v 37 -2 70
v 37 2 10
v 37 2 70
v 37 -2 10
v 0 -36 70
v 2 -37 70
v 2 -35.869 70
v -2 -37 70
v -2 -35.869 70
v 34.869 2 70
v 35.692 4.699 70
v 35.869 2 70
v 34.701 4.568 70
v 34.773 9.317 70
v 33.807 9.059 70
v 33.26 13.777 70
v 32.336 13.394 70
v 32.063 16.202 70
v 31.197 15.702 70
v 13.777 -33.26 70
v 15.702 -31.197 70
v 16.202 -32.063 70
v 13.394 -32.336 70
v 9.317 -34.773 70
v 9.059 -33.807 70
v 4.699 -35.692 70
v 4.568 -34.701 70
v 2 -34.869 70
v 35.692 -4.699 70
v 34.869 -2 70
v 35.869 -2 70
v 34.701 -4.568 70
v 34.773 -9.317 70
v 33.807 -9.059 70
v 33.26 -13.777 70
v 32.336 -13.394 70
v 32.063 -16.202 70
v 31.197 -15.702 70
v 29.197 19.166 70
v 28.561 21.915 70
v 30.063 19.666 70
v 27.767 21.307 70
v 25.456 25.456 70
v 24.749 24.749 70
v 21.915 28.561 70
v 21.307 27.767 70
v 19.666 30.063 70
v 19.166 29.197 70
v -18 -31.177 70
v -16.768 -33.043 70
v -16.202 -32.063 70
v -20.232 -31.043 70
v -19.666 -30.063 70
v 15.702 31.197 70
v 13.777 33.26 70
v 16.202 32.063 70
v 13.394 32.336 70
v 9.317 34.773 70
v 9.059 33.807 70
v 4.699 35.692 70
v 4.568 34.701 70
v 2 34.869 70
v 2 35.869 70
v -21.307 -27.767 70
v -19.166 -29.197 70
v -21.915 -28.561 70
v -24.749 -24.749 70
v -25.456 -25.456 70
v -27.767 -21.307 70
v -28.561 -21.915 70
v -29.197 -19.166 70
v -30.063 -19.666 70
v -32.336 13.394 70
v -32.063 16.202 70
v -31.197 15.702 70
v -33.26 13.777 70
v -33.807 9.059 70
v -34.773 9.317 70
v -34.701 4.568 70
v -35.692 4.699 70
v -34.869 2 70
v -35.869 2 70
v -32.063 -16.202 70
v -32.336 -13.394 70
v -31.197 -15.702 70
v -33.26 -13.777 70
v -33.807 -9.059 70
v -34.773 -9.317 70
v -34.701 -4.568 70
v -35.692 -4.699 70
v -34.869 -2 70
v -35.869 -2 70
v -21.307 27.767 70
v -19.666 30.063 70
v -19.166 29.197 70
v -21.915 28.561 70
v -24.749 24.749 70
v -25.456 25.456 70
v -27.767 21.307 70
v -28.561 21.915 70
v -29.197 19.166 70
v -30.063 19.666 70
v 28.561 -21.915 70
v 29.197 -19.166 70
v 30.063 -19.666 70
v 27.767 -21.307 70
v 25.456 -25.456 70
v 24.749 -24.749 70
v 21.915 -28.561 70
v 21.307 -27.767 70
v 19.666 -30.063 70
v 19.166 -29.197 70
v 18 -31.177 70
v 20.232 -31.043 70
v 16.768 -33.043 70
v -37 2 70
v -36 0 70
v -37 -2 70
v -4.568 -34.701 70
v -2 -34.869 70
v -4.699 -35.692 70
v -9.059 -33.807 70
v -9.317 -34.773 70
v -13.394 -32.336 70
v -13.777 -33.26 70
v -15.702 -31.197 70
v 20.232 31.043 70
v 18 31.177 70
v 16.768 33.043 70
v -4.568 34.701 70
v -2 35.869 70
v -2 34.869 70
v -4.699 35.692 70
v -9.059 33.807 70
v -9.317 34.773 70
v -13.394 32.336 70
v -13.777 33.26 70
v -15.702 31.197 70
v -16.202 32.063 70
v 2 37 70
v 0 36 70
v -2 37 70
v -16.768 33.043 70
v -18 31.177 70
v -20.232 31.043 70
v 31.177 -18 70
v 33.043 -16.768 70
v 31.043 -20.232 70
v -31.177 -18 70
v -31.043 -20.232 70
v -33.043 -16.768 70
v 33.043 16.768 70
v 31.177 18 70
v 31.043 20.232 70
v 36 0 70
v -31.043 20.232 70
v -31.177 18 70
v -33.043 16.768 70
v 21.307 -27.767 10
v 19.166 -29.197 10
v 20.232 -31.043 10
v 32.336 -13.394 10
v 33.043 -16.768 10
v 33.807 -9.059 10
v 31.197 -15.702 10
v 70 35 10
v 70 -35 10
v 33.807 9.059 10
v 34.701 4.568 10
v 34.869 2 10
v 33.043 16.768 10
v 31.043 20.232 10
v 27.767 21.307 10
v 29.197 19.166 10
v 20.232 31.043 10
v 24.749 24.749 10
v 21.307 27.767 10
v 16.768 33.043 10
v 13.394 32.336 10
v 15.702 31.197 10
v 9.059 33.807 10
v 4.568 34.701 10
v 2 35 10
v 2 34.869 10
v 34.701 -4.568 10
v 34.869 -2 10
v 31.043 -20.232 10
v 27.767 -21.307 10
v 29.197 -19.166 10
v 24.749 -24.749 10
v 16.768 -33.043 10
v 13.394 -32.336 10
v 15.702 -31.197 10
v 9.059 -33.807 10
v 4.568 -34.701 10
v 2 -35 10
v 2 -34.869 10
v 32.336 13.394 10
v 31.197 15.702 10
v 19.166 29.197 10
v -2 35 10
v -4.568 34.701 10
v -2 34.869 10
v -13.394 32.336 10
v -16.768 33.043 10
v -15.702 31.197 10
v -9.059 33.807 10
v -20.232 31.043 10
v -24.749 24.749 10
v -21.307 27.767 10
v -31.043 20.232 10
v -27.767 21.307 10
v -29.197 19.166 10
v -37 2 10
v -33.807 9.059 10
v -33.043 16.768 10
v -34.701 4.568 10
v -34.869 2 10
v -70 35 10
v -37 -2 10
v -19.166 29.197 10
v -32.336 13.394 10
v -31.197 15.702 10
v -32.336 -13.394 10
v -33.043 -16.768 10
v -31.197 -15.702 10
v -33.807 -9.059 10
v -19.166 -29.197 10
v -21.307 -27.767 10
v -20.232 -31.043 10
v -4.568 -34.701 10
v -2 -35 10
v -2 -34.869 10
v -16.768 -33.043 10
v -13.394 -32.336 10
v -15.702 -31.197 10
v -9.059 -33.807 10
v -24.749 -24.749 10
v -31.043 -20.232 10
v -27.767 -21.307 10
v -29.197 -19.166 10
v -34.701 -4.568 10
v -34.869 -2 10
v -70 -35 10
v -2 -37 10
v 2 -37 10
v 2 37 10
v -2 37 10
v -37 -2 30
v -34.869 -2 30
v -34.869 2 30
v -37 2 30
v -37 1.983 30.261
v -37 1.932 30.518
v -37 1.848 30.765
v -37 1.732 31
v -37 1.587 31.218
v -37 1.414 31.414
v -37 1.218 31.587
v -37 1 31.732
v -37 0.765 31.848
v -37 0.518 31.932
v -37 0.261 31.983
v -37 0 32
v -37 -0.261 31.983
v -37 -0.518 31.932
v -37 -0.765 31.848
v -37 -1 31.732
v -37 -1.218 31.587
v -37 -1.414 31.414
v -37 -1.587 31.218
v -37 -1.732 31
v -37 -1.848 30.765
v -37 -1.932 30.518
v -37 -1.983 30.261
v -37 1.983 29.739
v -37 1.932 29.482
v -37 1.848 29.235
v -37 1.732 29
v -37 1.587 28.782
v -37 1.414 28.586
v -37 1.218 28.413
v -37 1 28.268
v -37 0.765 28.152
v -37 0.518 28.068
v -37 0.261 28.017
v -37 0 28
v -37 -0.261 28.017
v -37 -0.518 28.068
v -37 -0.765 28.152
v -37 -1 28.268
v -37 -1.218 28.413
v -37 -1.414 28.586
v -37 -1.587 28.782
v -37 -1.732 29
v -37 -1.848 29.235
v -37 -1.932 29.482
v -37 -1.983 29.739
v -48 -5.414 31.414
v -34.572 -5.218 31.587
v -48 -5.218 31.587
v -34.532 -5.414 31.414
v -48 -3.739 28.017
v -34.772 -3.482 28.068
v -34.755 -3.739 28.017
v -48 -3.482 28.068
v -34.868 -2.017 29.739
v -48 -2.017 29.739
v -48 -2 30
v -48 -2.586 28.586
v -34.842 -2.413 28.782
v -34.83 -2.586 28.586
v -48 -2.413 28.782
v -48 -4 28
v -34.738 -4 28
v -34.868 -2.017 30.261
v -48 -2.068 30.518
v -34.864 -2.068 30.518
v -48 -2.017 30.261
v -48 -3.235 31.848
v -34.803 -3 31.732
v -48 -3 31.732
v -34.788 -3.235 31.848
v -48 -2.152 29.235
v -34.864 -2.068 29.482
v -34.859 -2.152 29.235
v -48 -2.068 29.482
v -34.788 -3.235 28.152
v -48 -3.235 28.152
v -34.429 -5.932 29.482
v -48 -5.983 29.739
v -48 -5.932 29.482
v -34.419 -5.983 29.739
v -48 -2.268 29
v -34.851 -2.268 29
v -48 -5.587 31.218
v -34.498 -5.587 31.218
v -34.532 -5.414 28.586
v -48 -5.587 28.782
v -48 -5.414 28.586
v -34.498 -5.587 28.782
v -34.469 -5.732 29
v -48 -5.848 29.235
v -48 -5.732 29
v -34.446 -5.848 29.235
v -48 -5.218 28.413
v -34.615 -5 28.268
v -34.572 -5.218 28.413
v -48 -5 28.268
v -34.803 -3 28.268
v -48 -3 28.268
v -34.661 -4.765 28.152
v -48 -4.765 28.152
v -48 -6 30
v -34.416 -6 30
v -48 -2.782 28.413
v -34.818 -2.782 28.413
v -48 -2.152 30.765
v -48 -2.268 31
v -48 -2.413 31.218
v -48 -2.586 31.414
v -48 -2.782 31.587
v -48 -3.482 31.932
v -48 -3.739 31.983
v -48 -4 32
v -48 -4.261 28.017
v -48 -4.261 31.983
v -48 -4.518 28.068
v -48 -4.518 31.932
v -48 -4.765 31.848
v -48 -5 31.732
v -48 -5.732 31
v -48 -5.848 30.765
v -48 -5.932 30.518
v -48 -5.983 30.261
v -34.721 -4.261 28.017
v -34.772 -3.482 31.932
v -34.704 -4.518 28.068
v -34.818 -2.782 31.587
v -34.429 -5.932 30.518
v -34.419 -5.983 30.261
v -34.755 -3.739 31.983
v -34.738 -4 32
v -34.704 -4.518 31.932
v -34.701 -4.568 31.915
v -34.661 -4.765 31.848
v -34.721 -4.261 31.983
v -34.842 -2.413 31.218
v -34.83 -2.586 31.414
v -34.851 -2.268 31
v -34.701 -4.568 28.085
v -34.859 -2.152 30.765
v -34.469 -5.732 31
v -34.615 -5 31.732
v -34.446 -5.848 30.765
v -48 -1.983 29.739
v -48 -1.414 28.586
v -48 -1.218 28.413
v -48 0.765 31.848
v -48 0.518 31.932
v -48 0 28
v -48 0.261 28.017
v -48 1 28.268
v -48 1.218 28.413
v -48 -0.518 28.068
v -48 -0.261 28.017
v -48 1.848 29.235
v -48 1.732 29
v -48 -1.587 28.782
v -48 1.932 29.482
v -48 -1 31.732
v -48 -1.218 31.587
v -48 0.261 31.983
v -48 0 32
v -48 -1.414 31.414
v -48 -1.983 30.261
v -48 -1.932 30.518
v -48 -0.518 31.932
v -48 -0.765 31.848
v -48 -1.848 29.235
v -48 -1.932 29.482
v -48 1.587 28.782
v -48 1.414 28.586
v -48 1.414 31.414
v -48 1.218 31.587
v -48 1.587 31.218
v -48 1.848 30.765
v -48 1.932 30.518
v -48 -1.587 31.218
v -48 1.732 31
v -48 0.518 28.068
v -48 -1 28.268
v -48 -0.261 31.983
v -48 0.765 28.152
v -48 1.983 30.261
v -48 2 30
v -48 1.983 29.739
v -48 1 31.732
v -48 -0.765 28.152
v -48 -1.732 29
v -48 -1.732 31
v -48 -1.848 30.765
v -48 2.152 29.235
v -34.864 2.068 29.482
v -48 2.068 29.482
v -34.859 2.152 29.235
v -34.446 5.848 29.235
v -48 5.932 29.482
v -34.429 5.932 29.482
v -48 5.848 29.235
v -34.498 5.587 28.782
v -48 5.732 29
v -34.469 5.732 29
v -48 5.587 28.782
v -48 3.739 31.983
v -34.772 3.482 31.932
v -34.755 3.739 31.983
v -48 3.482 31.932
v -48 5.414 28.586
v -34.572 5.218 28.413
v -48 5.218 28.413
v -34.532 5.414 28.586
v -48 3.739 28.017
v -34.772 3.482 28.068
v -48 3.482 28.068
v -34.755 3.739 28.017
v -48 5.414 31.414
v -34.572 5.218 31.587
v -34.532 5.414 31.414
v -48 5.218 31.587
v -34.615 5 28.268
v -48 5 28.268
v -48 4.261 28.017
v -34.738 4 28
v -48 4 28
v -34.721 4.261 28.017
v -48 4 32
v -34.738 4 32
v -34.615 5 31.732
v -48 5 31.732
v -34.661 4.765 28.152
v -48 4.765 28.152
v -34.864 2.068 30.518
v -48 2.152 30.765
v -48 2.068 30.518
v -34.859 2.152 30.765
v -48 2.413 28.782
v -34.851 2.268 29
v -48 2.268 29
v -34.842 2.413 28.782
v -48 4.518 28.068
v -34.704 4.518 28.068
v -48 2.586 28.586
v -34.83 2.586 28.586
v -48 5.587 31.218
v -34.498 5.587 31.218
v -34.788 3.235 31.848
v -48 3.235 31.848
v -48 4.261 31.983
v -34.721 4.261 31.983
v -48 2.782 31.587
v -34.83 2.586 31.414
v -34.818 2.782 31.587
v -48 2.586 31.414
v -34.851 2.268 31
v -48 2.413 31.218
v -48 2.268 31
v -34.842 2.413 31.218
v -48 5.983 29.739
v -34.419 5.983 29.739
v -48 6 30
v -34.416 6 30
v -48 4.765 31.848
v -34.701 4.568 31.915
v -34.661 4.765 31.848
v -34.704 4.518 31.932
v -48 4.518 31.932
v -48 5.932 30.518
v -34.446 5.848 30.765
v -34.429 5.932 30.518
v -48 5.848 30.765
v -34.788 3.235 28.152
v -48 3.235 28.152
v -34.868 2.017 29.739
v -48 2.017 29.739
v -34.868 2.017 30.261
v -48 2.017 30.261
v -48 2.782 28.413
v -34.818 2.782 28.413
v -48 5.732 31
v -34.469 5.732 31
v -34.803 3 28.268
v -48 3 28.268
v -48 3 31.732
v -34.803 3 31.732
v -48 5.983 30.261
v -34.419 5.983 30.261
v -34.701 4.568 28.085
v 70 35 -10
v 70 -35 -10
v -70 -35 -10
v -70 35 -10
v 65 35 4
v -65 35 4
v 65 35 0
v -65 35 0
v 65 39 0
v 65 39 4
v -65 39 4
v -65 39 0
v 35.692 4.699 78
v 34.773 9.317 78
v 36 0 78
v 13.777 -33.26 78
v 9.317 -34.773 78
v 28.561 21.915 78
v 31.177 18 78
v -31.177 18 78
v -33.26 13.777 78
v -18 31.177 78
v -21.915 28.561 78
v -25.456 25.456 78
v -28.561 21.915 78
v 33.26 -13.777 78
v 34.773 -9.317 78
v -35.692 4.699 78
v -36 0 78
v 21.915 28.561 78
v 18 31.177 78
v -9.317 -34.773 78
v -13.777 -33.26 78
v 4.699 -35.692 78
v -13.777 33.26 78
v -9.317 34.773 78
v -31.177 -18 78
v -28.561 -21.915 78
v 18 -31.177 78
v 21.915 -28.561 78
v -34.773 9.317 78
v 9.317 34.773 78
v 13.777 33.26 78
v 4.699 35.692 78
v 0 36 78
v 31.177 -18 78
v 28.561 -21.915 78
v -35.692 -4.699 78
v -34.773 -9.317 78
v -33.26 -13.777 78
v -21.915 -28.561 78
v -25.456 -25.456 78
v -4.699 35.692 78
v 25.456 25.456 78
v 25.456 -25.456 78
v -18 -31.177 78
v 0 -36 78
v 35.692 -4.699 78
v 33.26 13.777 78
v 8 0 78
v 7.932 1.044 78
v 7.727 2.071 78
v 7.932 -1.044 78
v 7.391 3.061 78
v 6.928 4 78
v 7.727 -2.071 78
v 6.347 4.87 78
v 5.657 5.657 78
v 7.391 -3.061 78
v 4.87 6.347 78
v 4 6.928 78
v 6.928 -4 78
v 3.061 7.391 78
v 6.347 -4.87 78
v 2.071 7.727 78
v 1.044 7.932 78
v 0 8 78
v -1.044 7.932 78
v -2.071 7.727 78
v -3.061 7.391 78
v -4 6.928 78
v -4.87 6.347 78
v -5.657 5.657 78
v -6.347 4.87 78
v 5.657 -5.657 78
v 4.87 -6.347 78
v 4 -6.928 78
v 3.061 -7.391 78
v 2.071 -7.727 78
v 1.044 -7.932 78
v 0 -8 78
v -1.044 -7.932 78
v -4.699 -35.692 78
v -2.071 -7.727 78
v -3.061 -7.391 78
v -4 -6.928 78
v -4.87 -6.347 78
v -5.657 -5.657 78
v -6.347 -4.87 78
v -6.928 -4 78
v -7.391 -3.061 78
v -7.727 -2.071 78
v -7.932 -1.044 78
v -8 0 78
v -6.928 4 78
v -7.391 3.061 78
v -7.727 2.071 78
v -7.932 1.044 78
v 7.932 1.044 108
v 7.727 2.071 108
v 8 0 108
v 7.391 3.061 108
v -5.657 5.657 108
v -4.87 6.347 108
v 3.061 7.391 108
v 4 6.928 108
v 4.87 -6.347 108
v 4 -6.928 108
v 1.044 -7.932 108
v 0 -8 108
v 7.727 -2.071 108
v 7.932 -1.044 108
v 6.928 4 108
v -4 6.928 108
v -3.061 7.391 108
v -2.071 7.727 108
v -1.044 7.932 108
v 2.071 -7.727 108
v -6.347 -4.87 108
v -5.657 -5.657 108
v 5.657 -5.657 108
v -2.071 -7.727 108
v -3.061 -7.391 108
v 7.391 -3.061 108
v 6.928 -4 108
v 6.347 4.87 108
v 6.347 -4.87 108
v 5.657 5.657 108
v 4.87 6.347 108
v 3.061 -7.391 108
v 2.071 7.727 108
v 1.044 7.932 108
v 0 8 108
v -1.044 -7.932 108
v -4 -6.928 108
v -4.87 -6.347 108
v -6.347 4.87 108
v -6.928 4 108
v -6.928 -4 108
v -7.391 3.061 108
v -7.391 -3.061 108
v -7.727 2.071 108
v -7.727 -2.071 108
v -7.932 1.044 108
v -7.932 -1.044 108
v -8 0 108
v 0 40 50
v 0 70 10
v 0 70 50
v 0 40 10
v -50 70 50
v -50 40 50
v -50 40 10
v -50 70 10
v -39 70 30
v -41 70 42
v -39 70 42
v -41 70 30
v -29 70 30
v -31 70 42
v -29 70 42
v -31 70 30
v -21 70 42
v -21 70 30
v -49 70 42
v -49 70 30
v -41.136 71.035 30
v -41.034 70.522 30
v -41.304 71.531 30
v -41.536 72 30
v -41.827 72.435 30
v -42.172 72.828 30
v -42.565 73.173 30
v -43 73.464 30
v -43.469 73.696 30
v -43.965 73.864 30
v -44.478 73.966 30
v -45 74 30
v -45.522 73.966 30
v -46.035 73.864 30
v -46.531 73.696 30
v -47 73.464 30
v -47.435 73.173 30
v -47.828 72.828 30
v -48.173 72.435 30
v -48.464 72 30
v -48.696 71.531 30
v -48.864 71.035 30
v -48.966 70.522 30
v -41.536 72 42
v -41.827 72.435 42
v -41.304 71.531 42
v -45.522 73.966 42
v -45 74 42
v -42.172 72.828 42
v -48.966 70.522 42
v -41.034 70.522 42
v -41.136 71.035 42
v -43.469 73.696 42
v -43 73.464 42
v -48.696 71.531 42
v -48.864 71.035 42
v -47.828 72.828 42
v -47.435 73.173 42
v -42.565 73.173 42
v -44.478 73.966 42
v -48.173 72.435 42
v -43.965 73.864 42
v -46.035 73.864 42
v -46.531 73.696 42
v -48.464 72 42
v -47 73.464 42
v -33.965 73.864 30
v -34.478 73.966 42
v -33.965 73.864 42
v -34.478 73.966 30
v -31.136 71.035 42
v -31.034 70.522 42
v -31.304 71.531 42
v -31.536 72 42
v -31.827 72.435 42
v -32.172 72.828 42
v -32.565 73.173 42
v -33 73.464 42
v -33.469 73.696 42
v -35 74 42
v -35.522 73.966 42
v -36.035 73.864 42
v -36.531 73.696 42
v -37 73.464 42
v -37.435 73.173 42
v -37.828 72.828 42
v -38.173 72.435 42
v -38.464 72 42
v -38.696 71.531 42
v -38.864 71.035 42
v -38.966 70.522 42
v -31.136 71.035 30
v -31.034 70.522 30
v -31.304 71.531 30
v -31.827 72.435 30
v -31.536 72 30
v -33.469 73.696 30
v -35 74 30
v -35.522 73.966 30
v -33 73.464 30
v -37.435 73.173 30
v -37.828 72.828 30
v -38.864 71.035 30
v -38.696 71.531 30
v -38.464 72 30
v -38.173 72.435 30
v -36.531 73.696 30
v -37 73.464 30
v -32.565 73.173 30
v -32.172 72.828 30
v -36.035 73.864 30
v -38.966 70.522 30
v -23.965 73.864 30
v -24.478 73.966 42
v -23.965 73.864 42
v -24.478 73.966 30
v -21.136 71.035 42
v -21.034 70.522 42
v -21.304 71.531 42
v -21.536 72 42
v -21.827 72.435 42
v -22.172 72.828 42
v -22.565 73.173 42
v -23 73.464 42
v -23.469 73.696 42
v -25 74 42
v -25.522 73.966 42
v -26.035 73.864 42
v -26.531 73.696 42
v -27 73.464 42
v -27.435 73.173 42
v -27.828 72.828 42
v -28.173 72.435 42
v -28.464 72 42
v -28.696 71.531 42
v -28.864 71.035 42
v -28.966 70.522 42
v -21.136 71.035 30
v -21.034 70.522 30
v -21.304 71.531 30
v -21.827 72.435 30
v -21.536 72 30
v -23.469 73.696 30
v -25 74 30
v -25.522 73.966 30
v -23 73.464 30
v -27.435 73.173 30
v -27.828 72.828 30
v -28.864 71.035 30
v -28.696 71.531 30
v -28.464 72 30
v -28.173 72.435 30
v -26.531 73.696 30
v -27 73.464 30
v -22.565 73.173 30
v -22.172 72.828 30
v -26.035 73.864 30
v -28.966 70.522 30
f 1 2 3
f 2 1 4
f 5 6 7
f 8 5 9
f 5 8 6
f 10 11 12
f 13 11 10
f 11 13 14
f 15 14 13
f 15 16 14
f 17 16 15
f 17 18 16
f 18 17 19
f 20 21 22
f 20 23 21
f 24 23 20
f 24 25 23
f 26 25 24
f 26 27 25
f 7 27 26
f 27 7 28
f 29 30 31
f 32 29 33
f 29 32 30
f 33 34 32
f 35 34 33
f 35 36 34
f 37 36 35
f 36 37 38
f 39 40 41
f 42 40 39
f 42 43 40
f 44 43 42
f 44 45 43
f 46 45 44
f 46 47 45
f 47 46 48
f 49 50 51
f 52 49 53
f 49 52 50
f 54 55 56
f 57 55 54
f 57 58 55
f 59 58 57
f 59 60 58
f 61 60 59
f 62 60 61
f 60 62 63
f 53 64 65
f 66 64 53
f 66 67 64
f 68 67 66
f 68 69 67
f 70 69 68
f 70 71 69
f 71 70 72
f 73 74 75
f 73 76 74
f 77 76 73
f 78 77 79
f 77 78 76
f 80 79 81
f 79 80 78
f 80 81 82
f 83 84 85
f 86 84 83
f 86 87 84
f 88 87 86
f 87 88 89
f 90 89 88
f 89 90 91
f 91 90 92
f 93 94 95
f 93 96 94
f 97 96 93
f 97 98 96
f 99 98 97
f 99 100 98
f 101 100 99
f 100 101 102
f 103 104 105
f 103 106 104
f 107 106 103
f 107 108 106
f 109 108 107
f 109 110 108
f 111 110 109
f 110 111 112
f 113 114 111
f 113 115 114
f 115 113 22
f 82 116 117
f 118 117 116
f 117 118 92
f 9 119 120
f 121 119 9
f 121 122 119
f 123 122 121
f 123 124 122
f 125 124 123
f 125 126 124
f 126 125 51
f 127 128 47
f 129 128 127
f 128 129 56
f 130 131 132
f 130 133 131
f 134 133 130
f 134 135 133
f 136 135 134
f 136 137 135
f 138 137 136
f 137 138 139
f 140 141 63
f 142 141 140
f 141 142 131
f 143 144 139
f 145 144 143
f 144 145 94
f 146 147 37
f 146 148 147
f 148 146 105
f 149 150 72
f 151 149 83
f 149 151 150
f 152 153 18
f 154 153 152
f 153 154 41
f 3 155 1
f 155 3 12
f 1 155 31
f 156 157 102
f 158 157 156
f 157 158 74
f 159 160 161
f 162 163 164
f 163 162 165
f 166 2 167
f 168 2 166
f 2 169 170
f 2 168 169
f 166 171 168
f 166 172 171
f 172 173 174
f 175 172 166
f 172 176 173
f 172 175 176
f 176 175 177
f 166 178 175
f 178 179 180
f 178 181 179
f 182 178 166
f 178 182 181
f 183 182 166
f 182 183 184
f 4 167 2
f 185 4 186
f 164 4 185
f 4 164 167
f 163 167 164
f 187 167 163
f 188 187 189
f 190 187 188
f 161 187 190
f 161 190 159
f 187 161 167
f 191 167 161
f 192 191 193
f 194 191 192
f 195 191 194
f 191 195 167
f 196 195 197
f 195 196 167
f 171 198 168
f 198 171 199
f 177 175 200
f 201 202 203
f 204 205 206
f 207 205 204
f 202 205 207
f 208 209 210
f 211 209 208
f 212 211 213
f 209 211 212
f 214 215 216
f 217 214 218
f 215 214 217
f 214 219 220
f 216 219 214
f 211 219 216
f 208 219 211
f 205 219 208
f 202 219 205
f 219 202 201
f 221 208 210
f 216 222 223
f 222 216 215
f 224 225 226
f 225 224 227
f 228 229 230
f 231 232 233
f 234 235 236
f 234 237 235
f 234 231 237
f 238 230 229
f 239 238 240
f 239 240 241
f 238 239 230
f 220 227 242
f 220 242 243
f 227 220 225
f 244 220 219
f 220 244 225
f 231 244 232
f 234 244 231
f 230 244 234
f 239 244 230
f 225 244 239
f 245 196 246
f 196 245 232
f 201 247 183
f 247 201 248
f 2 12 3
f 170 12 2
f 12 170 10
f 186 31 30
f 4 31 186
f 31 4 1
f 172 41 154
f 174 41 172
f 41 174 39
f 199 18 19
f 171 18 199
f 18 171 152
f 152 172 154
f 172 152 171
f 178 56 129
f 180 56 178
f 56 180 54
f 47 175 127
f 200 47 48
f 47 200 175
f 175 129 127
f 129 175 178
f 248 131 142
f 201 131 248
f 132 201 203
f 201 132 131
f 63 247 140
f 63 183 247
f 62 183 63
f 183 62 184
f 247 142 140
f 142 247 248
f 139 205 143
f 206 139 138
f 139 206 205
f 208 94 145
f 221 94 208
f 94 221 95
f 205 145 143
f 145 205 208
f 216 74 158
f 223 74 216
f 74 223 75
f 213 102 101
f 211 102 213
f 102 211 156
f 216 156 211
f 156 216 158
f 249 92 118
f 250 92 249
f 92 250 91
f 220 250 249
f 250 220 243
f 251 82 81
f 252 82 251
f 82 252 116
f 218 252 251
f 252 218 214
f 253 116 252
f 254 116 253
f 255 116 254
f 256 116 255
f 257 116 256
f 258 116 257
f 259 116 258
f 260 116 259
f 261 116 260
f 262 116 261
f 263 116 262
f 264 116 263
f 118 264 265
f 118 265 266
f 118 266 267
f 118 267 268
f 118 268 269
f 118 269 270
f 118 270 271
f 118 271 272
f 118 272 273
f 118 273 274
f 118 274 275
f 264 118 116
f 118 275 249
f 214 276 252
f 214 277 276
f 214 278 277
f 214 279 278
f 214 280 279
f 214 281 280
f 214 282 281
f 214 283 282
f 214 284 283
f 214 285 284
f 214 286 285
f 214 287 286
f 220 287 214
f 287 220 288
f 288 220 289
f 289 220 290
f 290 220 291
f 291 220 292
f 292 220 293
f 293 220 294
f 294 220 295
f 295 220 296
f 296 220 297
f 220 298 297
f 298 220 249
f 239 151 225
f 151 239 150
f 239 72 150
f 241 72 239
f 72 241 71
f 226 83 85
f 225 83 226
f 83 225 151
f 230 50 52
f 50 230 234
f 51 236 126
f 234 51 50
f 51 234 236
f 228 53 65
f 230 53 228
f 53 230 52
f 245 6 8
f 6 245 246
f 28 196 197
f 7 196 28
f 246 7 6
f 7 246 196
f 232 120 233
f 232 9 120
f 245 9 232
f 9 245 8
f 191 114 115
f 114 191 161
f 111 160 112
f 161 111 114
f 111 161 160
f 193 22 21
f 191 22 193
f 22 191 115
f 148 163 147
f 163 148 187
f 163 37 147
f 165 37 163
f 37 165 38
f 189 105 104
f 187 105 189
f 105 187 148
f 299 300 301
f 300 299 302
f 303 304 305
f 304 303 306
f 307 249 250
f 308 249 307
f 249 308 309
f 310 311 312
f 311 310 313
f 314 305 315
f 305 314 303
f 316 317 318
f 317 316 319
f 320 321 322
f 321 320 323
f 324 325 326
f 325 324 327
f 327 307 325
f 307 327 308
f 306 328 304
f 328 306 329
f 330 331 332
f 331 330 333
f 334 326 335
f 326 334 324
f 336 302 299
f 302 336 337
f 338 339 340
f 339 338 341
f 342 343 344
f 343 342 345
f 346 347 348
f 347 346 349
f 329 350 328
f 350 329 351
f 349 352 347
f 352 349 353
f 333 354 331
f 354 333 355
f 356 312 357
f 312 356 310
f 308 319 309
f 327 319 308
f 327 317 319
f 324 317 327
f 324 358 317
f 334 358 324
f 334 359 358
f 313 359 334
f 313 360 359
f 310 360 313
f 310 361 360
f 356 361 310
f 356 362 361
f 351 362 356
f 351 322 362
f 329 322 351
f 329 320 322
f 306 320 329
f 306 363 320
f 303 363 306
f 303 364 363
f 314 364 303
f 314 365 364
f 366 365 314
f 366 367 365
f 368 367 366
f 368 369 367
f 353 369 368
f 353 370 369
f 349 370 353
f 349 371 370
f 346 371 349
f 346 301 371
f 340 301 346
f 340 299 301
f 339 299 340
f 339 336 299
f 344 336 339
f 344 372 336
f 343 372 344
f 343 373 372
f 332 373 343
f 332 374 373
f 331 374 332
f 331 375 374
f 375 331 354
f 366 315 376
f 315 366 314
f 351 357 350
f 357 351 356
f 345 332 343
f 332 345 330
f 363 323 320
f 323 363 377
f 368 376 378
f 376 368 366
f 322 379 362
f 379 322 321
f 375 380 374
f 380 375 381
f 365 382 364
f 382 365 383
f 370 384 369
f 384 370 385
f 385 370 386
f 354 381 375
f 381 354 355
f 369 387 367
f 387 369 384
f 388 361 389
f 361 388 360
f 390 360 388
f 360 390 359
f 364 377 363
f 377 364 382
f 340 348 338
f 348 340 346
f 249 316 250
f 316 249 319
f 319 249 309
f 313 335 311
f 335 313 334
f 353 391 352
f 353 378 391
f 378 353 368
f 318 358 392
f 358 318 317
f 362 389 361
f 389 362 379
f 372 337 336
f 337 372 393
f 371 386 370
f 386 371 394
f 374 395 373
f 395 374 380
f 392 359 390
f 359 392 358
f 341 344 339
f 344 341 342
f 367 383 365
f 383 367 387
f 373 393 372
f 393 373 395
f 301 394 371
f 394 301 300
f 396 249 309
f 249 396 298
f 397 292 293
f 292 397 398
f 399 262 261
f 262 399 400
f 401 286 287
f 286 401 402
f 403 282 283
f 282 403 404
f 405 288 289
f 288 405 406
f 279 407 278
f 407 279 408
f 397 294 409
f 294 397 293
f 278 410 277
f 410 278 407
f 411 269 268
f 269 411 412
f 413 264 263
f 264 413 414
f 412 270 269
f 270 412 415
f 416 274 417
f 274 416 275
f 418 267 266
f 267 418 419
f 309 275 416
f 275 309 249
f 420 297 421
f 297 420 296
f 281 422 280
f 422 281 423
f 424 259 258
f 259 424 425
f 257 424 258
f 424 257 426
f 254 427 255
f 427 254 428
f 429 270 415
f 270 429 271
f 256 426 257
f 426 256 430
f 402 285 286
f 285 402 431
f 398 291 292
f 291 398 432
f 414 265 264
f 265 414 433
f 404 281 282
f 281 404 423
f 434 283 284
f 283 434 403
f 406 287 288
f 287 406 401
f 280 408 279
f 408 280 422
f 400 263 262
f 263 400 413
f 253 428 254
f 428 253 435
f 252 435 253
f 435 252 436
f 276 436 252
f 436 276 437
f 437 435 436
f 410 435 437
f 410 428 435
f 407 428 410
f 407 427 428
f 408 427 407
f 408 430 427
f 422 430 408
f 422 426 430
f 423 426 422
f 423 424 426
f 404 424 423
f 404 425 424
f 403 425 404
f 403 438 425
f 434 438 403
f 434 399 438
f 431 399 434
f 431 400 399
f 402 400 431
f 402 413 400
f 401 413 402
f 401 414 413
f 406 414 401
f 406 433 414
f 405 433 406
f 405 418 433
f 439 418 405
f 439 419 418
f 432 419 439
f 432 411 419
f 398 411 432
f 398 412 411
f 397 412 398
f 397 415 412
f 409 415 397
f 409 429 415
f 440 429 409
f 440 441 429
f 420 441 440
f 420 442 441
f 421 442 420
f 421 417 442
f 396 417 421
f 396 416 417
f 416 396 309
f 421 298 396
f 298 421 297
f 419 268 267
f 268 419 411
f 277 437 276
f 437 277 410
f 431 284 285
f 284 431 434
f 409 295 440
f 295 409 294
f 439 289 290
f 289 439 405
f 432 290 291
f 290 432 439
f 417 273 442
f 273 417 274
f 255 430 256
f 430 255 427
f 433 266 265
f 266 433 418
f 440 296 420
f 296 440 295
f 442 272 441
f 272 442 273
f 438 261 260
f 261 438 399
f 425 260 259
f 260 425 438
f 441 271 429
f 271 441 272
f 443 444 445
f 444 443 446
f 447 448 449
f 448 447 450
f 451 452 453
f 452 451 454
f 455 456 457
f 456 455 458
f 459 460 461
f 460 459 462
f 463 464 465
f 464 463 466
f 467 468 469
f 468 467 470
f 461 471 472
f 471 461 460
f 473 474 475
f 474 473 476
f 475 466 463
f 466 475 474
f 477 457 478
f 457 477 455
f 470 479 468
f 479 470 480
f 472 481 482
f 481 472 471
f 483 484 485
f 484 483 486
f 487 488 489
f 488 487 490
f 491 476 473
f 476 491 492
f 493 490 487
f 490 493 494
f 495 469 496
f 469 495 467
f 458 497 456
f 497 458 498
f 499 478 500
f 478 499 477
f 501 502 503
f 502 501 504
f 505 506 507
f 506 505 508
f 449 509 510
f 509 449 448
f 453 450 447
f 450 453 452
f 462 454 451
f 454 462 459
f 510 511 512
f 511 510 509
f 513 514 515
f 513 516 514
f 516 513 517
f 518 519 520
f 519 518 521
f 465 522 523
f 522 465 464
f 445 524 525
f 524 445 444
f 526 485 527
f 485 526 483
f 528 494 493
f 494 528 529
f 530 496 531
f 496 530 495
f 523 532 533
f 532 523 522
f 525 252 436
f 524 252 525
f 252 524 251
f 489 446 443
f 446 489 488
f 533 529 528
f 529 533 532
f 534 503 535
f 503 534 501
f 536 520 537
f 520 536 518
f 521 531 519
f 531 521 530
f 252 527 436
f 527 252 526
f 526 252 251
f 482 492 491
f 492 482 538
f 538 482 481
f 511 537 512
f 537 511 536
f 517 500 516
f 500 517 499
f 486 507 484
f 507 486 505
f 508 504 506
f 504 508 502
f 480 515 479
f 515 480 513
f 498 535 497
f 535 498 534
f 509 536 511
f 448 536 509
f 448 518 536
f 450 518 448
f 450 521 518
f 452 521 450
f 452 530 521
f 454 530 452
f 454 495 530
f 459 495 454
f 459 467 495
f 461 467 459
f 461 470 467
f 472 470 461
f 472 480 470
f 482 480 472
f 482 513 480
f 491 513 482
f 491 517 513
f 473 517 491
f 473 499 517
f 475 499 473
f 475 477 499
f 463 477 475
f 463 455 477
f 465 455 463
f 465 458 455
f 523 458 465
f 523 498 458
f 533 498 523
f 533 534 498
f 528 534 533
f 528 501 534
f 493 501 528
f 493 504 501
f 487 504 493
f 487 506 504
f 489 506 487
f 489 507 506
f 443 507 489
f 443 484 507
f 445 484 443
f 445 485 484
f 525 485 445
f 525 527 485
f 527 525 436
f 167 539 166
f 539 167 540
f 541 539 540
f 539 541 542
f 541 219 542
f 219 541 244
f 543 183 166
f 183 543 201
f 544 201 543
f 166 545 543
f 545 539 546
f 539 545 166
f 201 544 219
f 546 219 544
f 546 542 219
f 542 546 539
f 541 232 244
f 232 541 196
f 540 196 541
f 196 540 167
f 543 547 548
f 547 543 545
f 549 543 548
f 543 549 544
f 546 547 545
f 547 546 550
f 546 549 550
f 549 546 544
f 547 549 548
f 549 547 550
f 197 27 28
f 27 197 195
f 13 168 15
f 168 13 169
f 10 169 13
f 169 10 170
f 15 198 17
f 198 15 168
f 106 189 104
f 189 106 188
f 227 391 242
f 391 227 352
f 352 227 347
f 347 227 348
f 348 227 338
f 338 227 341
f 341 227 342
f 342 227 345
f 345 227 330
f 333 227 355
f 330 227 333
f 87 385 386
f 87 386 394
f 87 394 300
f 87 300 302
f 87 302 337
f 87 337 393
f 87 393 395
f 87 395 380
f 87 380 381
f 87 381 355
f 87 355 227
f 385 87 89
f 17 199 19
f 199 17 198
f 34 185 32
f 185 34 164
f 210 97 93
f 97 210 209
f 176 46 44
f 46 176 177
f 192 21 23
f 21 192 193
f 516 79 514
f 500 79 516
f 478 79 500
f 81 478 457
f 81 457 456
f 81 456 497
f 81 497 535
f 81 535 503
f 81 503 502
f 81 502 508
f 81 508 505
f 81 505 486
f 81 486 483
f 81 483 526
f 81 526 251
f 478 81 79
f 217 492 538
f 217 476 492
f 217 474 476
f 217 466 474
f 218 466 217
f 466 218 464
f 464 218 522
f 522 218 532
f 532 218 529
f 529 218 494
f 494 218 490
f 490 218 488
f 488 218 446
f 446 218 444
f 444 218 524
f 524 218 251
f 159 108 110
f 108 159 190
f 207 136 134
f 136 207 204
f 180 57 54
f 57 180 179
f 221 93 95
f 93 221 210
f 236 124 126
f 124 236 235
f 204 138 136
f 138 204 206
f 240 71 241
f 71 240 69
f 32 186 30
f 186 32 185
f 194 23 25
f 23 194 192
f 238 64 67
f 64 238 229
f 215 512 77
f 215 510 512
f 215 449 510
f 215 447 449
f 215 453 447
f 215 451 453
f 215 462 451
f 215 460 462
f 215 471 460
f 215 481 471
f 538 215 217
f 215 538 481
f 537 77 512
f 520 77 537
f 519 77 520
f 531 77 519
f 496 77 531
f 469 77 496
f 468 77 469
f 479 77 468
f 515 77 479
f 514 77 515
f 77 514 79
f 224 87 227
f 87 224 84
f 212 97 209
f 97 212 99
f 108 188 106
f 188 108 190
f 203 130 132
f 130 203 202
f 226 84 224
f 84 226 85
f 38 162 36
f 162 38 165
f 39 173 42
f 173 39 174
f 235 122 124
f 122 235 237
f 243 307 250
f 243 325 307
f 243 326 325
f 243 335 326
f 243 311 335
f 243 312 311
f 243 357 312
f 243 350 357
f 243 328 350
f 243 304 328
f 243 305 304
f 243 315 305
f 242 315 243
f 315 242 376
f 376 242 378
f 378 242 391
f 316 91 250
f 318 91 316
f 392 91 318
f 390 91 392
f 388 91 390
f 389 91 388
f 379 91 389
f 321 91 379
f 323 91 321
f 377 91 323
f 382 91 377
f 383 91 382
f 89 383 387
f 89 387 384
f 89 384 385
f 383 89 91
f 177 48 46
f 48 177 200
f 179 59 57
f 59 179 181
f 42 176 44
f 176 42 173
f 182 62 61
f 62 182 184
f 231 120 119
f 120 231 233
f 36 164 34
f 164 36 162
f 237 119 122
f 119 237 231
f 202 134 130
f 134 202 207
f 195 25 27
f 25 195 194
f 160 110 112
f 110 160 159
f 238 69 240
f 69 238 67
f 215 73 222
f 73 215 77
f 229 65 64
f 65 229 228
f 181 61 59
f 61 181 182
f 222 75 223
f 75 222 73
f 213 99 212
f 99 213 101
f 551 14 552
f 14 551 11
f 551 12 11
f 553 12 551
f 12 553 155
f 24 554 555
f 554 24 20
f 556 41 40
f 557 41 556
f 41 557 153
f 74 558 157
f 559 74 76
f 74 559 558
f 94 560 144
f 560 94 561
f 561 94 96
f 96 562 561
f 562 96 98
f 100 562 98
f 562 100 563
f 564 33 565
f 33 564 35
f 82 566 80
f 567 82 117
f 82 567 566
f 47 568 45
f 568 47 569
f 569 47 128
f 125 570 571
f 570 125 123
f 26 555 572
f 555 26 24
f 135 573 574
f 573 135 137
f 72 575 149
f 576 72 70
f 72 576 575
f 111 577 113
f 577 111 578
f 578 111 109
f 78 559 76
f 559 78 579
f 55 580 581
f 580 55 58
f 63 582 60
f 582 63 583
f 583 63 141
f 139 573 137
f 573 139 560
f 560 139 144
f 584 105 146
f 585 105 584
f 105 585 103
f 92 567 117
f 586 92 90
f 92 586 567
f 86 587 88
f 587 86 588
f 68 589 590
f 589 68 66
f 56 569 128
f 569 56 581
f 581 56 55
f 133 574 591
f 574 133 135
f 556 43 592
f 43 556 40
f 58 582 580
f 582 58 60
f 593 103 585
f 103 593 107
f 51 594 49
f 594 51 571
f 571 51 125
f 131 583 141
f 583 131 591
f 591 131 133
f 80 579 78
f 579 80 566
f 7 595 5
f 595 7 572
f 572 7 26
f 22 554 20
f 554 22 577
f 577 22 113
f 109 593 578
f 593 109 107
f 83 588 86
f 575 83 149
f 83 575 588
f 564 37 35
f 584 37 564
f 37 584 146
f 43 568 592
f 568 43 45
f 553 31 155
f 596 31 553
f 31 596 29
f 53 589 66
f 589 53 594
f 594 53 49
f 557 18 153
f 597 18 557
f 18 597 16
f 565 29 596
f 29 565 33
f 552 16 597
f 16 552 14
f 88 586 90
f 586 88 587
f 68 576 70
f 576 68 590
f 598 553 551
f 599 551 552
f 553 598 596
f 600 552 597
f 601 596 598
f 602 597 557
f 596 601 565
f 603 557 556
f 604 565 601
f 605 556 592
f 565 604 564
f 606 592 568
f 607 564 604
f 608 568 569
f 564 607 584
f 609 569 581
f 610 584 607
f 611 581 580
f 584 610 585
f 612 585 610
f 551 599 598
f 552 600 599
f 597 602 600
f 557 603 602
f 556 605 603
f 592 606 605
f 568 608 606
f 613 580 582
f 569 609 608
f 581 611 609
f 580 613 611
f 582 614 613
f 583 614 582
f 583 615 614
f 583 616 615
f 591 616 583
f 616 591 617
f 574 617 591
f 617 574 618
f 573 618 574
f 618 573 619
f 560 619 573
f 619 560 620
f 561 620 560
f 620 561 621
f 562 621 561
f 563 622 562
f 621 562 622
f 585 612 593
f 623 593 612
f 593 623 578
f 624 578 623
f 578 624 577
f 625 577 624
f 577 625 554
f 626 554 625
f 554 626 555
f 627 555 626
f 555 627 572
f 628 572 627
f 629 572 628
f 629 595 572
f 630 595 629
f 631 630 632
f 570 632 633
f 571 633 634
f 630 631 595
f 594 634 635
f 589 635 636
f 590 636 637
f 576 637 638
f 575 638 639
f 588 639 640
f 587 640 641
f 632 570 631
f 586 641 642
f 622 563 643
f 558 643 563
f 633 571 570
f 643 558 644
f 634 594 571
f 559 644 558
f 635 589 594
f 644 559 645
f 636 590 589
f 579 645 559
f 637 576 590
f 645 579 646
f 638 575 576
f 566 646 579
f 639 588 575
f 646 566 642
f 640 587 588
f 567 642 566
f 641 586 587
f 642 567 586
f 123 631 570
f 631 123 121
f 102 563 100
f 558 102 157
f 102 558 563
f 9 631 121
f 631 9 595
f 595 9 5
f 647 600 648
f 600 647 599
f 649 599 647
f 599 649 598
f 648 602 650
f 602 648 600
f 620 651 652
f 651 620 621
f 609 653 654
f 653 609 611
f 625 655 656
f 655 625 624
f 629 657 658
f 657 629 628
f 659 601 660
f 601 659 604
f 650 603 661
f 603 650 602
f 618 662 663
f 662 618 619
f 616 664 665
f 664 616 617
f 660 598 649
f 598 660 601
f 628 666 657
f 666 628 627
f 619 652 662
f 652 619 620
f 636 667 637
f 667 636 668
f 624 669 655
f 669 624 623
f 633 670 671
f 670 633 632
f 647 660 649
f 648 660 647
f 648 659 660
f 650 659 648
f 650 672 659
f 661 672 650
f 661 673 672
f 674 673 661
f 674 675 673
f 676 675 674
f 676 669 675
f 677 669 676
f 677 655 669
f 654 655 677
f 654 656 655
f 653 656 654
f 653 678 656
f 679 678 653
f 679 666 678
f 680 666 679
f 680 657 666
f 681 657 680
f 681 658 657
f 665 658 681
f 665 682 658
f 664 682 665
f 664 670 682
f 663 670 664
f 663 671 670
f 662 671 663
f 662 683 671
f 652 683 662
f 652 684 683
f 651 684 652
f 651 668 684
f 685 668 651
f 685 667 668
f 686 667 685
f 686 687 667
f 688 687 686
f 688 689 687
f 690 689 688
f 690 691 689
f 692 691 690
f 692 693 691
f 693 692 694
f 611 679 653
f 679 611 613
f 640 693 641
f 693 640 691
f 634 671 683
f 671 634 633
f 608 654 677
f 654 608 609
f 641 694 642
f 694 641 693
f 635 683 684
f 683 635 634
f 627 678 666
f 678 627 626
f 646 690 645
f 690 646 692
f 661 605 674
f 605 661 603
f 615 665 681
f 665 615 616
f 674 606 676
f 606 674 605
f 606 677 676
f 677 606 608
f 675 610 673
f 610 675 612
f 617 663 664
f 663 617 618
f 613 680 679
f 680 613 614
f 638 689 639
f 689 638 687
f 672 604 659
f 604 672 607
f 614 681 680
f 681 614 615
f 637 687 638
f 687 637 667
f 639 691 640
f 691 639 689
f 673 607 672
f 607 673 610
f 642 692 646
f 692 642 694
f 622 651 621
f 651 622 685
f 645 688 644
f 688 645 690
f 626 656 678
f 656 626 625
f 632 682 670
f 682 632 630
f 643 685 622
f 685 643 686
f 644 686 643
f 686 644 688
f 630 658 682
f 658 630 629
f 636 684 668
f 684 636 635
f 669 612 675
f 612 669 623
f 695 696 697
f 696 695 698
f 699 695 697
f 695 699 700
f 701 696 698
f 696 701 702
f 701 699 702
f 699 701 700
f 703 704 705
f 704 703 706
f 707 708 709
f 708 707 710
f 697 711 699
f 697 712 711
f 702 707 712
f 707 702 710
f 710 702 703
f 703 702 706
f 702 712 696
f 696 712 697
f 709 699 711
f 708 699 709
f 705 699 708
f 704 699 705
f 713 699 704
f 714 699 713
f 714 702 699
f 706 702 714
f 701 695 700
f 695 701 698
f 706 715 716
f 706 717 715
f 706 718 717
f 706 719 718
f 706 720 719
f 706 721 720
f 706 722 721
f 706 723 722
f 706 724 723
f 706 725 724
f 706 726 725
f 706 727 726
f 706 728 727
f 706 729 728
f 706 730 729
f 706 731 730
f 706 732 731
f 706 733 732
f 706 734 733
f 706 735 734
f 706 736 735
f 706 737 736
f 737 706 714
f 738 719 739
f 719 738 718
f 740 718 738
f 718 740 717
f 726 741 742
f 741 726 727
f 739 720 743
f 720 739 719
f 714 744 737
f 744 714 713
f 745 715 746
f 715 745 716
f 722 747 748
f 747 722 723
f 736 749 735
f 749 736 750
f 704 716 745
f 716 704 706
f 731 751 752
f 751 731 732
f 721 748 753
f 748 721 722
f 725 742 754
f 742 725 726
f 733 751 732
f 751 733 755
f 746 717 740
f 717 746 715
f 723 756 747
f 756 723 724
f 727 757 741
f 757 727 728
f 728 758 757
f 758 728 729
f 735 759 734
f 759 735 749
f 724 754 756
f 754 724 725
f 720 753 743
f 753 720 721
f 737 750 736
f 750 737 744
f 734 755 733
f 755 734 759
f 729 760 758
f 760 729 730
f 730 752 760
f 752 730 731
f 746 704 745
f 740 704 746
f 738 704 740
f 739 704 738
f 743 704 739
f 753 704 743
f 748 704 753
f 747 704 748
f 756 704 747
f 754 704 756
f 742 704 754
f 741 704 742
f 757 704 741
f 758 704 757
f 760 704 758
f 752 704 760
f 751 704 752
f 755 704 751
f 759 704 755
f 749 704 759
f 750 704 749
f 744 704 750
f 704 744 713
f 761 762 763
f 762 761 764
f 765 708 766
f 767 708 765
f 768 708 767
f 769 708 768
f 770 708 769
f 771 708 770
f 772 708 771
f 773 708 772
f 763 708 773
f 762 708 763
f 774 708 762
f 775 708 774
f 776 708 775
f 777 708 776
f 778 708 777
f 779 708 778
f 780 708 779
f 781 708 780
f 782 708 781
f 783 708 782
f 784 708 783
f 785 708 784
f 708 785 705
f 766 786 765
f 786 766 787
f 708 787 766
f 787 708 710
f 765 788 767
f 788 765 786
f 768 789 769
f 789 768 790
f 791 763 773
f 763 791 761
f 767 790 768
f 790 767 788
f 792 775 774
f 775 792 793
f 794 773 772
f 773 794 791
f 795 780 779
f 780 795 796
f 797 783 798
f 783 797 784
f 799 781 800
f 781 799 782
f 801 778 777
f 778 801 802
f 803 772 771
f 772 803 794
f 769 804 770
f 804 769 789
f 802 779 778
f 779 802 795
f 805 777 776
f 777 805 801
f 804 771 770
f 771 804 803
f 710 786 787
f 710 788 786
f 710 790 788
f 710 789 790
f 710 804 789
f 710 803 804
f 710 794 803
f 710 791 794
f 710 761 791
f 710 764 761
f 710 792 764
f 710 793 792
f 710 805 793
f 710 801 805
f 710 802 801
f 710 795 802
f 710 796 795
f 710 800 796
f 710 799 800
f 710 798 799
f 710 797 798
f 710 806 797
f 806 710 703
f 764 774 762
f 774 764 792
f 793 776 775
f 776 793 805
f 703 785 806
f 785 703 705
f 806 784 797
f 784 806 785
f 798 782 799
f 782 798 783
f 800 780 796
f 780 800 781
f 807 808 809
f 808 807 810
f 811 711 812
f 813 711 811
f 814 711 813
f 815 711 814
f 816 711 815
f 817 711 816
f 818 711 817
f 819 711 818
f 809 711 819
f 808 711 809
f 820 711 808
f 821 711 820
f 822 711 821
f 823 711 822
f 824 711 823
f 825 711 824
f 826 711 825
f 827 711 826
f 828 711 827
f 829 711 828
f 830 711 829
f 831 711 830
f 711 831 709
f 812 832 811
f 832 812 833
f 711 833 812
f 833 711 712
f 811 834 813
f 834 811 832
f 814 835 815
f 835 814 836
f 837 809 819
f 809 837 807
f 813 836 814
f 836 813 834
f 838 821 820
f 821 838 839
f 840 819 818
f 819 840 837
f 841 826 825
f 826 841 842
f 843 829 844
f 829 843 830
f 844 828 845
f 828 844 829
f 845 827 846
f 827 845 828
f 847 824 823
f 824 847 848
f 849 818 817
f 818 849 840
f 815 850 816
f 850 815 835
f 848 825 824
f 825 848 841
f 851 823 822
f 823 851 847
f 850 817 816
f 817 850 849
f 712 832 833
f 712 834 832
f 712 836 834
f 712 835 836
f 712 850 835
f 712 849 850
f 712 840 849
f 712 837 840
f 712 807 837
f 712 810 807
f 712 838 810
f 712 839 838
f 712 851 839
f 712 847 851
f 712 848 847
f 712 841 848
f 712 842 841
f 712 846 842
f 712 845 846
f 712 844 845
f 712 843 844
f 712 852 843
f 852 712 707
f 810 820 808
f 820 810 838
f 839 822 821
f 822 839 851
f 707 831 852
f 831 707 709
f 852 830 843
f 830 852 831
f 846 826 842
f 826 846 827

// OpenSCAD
// 電動馬達 + 電池包 EV Powertrain
$fn = 48;

// 電池包（扁平矩形，藍灰）
color([0.20, 0.28, 0.45])
  translate([-70, -35, -10]) cube([140, 70, 20]);
// 電池模組格線
color([0.15, 0.22, 0.38])
  for (x = [0:5])
    translate([-68 + x*23, -33, -9]) cube([21, 66, 18]);
// 電池接頭
color([0.80, 0.72, 0.20])
  translate([-65, 35, 0]) cube([130, 4, 4]);

// BLDC 馬達（圓柱形，橘色）
color([0.90, 0.45, 0.05])
  translate([0, 0, 10]) cylinder(h = 60, r = 35);
// 馬達散熱鰭片
color([0.80, 0.38, 0.04])
  for (a = [0:30:360])
    rotate([0, 0, a]) translate([33, -2, 10]) cube([4, 4, 60]);

// 馬達前端蓋
color([0.75, 0.76, 0.78])
  translate([0, 0, 70]) cylinder(h = 8, r = 36);

// 輸出軸
color([0.65, 0.66, 0.68])
  translate([0, 0, 78]) cylinder(h = 30, r = 8);

// 電機控制器 PCU（黑色盒子）
color([0.15, 0.15, 0.18])
  translate([-50, 40, 10]) cube([50, 30, 40]);
// PCU 接線
color([0.80, 0.08, 0.10])
  translate([-45, 70, 30]) cylinder(h = 12, r = 4);
color([0.10, 0.75, 0.15])
  translate([-35, 70, 30]) cylinder(h = 12, r = 4);
color([0.10, 0.10, 0.75])
  translate([-25, 70, 30]) cylinder(h = 12, r = 4);

// 三相電纜（連接馬達與 PCU）
color([0.12, 0.12, 0.14])
  for (dy = [-4, 0, 4])
    translate([-48, dy, 30]) rotate([0, 90, 0]) cylinder(h = 28, r = 2);
